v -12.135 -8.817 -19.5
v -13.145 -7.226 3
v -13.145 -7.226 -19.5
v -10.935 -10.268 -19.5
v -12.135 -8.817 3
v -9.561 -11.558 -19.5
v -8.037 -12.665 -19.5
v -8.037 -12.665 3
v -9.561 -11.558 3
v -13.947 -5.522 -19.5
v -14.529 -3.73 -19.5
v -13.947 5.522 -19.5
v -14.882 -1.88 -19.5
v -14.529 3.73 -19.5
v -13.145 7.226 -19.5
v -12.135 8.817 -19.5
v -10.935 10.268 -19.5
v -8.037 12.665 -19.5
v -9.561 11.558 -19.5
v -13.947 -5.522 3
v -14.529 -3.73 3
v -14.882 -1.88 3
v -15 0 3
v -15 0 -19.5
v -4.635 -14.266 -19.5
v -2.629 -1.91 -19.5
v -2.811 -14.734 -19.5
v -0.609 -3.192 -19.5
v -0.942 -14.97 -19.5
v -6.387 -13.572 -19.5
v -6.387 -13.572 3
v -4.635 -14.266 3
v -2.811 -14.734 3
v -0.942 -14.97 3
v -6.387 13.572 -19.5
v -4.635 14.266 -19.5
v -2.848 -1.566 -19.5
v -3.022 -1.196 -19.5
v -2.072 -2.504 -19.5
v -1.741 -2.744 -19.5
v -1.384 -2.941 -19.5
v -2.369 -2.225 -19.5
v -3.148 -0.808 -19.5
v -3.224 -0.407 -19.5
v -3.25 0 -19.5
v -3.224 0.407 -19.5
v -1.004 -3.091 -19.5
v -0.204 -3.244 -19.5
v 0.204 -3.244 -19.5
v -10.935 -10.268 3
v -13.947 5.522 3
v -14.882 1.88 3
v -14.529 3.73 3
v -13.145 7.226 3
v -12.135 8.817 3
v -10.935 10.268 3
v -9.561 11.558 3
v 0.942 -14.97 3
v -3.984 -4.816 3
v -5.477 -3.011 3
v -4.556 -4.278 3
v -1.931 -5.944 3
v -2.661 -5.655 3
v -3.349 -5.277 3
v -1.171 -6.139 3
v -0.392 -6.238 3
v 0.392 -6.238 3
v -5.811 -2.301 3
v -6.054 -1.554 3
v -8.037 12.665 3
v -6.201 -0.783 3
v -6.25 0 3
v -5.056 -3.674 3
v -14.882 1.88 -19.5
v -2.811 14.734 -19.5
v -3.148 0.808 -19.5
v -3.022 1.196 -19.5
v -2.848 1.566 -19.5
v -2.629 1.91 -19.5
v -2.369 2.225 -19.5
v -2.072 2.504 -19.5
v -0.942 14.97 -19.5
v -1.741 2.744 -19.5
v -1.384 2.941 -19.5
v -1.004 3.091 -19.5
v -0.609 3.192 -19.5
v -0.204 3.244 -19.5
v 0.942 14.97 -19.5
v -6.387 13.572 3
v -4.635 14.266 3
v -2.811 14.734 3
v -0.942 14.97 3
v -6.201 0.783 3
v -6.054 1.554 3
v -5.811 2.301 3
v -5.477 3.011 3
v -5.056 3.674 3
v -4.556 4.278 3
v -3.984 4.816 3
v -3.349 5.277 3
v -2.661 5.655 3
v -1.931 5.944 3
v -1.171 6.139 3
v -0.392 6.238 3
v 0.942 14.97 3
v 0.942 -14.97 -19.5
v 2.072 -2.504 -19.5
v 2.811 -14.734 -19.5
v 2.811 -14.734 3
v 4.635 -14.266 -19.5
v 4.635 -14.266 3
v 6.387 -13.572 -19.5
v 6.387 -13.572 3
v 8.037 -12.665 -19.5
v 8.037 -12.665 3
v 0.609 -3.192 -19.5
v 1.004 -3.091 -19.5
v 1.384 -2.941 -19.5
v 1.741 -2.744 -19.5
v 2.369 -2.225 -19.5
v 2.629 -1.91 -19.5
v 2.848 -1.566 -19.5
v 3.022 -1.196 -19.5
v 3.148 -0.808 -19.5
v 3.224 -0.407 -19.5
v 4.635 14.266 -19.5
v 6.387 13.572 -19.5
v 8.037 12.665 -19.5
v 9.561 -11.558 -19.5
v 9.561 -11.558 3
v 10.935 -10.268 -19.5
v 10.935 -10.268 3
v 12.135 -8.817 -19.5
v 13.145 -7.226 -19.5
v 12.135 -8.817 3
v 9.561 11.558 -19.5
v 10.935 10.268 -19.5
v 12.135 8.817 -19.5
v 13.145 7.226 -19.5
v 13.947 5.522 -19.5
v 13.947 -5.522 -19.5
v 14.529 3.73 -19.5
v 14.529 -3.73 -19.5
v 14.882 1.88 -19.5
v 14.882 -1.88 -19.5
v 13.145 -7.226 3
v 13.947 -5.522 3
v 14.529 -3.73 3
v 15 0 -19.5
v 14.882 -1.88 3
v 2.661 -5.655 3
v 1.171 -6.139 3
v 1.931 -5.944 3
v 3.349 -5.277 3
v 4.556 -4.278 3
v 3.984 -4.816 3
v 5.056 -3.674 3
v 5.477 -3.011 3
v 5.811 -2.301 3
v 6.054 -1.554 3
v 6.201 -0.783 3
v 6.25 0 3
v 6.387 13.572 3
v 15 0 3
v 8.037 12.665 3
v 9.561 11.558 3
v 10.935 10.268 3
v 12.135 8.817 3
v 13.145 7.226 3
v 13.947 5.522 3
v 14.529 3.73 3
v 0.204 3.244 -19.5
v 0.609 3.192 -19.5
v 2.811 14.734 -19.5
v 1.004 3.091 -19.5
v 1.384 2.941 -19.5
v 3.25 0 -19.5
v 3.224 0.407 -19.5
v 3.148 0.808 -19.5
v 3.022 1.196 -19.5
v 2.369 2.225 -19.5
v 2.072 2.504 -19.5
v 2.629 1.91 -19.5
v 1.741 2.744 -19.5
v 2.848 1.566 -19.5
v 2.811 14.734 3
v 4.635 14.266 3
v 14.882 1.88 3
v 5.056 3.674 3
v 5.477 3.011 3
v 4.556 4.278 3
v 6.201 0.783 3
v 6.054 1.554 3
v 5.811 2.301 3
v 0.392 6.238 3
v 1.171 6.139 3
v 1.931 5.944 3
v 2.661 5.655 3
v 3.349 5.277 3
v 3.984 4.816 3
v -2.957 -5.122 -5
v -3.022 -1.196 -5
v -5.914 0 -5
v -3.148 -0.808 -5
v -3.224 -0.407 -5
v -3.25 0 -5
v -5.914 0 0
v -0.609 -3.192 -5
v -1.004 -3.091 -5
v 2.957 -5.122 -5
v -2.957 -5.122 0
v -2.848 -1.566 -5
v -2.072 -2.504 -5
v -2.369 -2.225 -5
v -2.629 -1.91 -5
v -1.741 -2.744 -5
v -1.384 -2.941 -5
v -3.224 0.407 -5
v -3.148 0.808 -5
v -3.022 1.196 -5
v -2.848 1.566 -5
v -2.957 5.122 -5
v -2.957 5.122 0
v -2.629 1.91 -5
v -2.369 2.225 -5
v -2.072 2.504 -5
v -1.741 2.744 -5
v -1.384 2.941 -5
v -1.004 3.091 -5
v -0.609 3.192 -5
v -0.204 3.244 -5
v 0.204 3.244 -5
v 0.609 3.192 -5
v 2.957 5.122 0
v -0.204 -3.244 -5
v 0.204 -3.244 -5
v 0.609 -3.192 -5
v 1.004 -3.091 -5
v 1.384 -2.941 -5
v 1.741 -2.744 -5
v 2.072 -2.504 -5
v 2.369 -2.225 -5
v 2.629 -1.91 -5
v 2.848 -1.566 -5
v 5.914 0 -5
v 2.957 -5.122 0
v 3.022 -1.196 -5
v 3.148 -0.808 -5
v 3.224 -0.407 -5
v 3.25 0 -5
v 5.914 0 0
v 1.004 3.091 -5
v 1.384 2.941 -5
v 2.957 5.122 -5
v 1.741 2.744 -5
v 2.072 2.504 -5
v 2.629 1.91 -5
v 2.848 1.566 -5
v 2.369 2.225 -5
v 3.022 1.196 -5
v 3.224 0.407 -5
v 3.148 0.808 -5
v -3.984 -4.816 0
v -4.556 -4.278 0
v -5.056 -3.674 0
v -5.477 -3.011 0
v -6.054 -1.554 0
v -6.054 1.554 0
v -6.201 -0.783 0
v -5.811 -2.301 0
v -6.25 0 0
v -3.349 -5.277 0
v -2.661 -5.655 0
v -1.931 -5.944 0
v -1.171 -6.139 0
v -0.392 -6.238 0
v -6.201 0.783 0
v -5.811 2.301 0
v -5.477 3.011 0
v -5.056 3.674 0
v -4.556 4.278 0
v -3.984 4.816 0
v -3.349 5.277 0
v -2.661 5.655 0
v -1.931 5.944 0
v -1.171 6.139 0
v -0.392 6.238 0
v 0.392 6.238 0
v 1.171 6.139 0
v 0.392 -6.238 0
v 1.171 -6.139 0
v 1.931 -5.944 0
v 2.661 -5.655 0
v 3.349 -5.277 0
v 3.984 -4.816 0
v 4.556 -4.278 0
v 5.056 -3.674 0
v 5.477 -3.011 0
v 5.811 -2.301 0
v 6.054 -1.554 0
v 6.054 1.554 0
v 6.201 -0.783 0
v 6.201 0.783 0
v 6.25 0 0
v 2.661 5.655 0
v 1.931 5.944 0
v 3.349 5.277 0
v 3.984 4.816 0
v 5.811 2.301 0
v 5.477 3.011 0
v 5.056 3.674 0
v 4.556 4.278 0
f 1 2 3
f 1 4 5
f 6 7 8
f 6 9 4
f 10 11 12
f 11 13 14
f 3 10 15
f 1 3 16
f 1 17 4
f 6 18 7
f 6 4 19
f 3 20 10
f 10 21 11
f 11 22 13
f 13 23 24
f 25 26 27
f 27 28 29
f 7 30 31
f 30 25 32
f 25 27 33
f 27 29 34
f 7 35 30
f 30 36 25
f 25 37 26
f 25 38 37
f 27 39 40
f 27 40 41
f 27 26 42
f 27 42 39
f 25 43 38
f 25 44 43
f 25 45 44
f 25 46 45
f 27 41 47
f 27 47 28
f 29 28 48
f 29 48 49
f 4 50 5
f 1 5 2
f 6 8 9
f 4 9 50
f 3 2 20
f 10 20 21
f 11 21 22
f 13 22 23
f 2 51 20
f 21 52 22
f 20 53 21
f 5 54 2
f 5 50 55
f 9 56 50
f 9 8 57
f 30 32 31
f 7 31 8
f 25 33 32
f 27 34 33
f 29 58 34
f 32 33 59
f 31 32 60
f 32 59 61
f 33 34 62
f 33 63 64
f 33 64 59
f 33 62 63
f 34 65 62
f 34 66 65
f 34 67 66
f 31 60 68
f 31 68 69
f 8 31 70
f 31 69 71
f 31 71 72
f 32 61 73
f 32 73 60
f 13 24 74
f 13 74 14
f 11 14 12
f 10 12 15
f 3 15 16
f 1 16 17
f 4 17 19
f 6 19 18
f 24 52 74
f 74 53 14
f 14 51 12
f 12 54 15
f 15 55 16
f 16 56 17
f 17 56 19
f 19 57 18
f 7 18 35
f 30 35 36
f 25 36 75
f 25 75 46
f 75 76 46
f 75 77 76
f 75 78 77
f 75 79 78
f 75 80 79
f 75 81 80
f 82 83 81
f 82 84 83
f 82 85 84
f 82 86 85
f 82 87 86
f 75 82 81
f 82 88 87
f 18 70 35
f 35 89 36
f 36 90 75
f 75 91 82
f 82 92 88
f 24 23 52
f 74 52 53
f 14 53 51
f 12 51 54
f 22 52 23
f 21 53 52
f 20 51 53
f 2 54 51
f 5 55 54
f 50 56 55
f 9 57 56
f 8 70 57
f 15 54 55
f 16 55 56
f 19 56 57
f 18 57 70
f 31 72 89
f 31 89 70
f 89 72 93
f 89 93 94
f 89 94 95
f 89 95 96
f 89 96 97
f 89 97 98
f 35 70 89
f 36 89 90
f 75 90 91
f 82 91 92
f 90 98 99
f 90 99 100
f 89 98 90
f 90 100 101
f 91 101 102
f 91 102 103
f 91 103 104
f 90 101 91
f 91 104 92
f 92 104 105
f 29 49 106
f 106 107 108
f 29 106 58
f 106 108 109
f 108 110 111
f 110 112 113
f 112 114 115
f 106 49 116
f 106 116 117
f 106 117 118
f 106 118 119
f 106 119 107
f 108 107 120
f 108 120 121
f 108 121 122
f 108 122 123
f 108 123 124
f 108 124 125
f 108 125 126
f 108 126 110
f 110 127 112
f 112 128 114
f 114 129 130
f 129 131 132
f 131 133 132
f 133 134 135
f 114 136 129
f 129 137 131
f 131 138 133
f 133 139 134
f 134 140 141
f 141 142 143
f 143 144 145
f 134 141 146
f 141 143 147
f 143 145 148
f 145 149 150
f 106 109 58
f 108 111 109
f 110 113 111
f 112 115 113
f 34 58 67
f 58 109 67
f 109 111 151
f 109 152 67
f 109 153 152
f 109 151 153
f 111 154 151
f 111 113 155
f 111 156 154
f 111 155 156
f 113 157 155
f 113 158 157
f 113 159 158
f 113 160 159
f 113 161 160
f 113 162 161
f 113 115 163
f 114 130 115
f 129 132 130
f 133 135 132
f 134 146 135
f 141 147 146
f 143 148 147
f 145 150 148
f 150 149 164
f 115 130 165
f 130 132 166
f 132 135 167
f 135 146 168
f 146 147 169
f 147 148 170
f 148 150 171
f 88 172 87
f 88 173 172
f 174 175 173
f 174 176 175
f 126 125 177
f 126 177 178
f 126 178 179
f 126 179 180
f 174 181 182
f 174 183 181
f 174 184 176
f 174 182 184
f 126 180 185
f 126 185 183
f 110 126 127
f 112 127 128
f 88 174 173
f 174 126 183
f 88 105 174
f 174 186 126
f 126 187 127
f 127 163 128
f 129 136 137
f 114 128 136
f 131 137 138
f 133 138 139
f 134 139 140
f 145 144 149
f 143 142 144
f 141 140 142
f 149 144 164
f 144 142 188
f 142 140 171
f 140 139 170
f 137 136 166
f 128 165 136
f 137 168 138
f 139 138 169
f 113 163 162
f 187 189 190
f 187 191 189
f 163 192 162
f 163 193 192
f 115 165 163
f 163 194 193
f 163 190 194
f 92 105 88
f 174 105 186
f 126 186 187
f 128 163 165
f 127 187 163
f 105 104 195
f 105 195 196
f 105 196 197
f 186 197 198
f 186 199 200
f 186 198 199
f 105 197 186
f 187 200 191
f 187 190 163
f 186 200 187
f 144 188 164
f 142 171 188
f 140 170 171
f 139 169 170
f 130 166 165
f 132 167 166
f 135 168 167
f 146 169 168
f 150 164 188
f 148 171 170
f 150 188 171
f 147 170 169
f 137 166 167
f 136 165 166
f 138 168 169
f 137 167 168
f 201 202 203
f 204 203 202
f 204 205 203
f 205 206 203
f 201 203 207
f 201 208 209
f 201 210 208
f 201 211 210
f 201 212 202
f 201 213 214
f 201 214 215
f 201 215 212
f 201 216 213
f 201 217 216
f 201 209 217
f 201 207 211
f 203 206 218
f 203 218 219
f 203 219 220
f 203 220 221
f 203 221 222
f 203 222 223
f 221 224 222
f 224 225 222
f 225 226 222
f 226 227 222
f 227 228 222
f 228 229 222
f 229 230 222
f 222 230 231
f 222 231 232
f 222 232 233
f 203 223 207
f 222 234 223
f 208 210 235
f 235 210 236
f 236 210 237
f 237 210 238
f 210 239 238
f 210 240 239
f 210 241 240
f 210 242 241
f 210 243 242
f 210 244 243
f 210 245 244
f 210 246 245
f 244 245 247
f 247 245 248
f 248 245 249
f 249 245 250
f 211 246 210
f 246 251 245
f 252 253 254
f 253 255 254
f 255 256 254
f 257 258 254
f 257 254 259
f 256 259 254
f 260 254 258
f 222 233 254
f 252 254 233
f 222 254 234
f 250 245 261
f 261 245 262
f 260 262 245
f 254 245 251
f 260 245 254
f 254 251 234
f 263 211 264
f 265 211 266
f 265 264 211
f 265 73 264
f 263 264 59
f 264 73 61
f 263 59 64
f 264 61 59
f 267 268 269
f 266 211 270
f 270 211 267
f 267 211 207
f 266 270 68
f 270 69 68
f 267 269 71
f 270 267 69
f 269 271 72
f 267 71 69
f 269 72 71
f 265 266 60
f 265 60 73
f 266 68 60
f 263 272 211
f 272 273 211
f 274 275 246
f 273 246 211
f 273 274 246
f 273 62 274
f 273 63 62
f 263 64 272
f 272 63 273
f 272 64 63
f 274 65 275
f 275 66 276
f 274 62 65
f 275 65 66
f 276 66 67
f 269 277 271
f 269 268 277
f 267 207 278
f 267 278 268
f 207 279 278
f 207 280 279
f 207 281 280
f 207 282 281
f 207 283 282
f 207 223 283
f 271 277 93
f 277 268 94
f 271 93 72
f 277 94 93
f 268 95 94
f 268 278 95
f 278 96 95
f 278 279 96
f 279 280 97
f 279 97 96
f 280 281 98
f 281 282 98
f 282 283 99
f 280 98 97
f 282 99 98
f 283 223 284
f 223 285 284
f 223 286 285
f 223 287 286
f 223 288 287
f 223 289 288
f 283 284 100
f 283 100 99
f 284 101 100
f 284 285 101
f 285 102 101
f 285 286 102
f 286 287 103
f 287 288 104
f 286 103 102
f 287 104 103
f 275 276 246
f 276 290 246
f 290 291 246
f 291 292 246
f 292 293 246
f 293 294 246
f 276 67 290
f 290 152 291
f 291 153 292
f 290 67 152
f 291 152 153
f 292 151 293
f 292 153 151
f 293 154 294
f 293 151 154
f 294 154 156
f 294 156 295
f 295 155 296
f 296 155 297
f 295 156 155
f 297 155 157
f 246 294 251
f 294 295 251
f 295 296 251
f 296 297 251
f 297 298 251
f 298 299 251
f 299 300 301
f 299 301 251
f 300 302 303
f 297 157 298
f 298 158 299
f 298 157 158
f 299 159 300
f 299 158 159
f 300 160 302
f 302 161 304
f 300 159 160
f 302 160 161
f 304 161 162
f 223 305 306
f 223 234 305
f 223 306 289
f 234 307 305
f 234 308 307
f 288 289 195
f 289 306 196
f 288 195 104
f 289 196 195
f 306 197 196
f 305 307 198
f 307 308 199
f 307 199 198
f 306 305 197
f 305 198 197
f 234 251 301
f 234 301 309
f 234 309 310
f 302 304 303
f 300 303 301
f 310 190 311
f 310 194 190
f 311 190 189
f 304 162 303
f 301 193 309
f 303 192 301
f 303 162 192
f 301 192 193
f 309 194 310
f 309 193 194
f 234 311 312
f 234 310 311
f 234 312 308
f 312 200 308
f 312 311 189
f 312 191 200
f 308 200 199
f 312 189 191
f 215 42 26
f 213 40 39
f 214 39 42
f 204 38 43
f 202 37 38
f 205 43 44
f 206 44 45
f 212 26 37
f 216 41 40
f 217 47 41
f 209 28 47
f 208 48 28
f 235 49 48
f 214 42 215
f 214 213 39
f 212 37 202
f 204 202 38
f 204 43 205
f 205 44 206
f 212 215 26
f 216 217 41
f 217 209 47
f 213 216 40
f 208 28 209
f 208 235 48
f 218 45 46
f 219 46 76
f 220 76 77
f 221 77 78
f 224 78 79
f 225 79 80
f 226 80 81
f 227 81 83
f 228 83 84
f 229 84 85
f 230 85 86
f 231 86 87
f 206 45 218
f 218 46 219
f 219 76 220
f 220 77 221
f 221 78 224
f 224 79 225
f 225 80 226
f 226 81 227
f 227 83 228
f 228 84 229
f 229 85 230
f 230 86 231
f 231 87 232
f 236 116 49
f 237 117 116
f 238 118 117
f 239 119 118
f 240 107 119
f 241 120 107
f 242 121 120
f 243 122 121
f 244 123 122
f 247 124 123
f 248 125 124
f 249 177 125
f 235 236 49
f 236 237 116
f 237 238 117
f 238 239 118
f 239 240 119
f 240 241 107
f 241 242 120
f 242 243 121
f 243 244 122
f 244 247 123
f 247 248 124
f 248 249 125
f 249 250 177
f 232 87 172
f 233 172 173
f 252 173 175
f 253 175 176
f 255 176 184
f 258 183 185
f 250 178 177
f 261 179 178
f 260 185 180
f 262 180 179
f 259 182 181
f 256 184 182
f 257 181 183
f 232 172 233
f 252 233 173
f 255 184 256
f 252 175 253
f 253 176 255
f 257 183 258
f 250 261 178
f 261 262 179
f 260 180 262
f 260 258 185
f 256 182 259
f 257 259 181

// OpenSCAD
$fn = 50;


difference() {
	union() {
		translate(v = [0, 0, -19.5000000000]) {
			cylinder(h = 22.5000000000, r = 15.0000000000);
		}
		#translate(v = [0, 0, -21.0000000000]) {
			cylinder(h = 21, r = 2.8750000000);
		}
	}
	union() {
		translate(v = [0, 0, 0]) {
			rotate(a = [0, 0, 0]) {
				difference() {
					union() {
						translate(v = [0, 0, -5]) {
							linear_extrude(height = 5) {
								polygon(points = [[5.9142500000, 0.0000000000], [2.9571250000, 5.1218907443], [-2.9571250000, 5.1218907443], [-5.9142500000, 0.0000000000], [-2.9571250000, -5.1218907443], [2.9571250000, -5.1218907443]]);
							}
						}
					}
					union();
				}
			}
		}
		#cylinder(h = 3, r = 6.2500000000);
		#translate(v = [0, 0, -100.0000000000]) {
			cylinder(h = 200, r = 3.2500000000);
		}
	}
}
